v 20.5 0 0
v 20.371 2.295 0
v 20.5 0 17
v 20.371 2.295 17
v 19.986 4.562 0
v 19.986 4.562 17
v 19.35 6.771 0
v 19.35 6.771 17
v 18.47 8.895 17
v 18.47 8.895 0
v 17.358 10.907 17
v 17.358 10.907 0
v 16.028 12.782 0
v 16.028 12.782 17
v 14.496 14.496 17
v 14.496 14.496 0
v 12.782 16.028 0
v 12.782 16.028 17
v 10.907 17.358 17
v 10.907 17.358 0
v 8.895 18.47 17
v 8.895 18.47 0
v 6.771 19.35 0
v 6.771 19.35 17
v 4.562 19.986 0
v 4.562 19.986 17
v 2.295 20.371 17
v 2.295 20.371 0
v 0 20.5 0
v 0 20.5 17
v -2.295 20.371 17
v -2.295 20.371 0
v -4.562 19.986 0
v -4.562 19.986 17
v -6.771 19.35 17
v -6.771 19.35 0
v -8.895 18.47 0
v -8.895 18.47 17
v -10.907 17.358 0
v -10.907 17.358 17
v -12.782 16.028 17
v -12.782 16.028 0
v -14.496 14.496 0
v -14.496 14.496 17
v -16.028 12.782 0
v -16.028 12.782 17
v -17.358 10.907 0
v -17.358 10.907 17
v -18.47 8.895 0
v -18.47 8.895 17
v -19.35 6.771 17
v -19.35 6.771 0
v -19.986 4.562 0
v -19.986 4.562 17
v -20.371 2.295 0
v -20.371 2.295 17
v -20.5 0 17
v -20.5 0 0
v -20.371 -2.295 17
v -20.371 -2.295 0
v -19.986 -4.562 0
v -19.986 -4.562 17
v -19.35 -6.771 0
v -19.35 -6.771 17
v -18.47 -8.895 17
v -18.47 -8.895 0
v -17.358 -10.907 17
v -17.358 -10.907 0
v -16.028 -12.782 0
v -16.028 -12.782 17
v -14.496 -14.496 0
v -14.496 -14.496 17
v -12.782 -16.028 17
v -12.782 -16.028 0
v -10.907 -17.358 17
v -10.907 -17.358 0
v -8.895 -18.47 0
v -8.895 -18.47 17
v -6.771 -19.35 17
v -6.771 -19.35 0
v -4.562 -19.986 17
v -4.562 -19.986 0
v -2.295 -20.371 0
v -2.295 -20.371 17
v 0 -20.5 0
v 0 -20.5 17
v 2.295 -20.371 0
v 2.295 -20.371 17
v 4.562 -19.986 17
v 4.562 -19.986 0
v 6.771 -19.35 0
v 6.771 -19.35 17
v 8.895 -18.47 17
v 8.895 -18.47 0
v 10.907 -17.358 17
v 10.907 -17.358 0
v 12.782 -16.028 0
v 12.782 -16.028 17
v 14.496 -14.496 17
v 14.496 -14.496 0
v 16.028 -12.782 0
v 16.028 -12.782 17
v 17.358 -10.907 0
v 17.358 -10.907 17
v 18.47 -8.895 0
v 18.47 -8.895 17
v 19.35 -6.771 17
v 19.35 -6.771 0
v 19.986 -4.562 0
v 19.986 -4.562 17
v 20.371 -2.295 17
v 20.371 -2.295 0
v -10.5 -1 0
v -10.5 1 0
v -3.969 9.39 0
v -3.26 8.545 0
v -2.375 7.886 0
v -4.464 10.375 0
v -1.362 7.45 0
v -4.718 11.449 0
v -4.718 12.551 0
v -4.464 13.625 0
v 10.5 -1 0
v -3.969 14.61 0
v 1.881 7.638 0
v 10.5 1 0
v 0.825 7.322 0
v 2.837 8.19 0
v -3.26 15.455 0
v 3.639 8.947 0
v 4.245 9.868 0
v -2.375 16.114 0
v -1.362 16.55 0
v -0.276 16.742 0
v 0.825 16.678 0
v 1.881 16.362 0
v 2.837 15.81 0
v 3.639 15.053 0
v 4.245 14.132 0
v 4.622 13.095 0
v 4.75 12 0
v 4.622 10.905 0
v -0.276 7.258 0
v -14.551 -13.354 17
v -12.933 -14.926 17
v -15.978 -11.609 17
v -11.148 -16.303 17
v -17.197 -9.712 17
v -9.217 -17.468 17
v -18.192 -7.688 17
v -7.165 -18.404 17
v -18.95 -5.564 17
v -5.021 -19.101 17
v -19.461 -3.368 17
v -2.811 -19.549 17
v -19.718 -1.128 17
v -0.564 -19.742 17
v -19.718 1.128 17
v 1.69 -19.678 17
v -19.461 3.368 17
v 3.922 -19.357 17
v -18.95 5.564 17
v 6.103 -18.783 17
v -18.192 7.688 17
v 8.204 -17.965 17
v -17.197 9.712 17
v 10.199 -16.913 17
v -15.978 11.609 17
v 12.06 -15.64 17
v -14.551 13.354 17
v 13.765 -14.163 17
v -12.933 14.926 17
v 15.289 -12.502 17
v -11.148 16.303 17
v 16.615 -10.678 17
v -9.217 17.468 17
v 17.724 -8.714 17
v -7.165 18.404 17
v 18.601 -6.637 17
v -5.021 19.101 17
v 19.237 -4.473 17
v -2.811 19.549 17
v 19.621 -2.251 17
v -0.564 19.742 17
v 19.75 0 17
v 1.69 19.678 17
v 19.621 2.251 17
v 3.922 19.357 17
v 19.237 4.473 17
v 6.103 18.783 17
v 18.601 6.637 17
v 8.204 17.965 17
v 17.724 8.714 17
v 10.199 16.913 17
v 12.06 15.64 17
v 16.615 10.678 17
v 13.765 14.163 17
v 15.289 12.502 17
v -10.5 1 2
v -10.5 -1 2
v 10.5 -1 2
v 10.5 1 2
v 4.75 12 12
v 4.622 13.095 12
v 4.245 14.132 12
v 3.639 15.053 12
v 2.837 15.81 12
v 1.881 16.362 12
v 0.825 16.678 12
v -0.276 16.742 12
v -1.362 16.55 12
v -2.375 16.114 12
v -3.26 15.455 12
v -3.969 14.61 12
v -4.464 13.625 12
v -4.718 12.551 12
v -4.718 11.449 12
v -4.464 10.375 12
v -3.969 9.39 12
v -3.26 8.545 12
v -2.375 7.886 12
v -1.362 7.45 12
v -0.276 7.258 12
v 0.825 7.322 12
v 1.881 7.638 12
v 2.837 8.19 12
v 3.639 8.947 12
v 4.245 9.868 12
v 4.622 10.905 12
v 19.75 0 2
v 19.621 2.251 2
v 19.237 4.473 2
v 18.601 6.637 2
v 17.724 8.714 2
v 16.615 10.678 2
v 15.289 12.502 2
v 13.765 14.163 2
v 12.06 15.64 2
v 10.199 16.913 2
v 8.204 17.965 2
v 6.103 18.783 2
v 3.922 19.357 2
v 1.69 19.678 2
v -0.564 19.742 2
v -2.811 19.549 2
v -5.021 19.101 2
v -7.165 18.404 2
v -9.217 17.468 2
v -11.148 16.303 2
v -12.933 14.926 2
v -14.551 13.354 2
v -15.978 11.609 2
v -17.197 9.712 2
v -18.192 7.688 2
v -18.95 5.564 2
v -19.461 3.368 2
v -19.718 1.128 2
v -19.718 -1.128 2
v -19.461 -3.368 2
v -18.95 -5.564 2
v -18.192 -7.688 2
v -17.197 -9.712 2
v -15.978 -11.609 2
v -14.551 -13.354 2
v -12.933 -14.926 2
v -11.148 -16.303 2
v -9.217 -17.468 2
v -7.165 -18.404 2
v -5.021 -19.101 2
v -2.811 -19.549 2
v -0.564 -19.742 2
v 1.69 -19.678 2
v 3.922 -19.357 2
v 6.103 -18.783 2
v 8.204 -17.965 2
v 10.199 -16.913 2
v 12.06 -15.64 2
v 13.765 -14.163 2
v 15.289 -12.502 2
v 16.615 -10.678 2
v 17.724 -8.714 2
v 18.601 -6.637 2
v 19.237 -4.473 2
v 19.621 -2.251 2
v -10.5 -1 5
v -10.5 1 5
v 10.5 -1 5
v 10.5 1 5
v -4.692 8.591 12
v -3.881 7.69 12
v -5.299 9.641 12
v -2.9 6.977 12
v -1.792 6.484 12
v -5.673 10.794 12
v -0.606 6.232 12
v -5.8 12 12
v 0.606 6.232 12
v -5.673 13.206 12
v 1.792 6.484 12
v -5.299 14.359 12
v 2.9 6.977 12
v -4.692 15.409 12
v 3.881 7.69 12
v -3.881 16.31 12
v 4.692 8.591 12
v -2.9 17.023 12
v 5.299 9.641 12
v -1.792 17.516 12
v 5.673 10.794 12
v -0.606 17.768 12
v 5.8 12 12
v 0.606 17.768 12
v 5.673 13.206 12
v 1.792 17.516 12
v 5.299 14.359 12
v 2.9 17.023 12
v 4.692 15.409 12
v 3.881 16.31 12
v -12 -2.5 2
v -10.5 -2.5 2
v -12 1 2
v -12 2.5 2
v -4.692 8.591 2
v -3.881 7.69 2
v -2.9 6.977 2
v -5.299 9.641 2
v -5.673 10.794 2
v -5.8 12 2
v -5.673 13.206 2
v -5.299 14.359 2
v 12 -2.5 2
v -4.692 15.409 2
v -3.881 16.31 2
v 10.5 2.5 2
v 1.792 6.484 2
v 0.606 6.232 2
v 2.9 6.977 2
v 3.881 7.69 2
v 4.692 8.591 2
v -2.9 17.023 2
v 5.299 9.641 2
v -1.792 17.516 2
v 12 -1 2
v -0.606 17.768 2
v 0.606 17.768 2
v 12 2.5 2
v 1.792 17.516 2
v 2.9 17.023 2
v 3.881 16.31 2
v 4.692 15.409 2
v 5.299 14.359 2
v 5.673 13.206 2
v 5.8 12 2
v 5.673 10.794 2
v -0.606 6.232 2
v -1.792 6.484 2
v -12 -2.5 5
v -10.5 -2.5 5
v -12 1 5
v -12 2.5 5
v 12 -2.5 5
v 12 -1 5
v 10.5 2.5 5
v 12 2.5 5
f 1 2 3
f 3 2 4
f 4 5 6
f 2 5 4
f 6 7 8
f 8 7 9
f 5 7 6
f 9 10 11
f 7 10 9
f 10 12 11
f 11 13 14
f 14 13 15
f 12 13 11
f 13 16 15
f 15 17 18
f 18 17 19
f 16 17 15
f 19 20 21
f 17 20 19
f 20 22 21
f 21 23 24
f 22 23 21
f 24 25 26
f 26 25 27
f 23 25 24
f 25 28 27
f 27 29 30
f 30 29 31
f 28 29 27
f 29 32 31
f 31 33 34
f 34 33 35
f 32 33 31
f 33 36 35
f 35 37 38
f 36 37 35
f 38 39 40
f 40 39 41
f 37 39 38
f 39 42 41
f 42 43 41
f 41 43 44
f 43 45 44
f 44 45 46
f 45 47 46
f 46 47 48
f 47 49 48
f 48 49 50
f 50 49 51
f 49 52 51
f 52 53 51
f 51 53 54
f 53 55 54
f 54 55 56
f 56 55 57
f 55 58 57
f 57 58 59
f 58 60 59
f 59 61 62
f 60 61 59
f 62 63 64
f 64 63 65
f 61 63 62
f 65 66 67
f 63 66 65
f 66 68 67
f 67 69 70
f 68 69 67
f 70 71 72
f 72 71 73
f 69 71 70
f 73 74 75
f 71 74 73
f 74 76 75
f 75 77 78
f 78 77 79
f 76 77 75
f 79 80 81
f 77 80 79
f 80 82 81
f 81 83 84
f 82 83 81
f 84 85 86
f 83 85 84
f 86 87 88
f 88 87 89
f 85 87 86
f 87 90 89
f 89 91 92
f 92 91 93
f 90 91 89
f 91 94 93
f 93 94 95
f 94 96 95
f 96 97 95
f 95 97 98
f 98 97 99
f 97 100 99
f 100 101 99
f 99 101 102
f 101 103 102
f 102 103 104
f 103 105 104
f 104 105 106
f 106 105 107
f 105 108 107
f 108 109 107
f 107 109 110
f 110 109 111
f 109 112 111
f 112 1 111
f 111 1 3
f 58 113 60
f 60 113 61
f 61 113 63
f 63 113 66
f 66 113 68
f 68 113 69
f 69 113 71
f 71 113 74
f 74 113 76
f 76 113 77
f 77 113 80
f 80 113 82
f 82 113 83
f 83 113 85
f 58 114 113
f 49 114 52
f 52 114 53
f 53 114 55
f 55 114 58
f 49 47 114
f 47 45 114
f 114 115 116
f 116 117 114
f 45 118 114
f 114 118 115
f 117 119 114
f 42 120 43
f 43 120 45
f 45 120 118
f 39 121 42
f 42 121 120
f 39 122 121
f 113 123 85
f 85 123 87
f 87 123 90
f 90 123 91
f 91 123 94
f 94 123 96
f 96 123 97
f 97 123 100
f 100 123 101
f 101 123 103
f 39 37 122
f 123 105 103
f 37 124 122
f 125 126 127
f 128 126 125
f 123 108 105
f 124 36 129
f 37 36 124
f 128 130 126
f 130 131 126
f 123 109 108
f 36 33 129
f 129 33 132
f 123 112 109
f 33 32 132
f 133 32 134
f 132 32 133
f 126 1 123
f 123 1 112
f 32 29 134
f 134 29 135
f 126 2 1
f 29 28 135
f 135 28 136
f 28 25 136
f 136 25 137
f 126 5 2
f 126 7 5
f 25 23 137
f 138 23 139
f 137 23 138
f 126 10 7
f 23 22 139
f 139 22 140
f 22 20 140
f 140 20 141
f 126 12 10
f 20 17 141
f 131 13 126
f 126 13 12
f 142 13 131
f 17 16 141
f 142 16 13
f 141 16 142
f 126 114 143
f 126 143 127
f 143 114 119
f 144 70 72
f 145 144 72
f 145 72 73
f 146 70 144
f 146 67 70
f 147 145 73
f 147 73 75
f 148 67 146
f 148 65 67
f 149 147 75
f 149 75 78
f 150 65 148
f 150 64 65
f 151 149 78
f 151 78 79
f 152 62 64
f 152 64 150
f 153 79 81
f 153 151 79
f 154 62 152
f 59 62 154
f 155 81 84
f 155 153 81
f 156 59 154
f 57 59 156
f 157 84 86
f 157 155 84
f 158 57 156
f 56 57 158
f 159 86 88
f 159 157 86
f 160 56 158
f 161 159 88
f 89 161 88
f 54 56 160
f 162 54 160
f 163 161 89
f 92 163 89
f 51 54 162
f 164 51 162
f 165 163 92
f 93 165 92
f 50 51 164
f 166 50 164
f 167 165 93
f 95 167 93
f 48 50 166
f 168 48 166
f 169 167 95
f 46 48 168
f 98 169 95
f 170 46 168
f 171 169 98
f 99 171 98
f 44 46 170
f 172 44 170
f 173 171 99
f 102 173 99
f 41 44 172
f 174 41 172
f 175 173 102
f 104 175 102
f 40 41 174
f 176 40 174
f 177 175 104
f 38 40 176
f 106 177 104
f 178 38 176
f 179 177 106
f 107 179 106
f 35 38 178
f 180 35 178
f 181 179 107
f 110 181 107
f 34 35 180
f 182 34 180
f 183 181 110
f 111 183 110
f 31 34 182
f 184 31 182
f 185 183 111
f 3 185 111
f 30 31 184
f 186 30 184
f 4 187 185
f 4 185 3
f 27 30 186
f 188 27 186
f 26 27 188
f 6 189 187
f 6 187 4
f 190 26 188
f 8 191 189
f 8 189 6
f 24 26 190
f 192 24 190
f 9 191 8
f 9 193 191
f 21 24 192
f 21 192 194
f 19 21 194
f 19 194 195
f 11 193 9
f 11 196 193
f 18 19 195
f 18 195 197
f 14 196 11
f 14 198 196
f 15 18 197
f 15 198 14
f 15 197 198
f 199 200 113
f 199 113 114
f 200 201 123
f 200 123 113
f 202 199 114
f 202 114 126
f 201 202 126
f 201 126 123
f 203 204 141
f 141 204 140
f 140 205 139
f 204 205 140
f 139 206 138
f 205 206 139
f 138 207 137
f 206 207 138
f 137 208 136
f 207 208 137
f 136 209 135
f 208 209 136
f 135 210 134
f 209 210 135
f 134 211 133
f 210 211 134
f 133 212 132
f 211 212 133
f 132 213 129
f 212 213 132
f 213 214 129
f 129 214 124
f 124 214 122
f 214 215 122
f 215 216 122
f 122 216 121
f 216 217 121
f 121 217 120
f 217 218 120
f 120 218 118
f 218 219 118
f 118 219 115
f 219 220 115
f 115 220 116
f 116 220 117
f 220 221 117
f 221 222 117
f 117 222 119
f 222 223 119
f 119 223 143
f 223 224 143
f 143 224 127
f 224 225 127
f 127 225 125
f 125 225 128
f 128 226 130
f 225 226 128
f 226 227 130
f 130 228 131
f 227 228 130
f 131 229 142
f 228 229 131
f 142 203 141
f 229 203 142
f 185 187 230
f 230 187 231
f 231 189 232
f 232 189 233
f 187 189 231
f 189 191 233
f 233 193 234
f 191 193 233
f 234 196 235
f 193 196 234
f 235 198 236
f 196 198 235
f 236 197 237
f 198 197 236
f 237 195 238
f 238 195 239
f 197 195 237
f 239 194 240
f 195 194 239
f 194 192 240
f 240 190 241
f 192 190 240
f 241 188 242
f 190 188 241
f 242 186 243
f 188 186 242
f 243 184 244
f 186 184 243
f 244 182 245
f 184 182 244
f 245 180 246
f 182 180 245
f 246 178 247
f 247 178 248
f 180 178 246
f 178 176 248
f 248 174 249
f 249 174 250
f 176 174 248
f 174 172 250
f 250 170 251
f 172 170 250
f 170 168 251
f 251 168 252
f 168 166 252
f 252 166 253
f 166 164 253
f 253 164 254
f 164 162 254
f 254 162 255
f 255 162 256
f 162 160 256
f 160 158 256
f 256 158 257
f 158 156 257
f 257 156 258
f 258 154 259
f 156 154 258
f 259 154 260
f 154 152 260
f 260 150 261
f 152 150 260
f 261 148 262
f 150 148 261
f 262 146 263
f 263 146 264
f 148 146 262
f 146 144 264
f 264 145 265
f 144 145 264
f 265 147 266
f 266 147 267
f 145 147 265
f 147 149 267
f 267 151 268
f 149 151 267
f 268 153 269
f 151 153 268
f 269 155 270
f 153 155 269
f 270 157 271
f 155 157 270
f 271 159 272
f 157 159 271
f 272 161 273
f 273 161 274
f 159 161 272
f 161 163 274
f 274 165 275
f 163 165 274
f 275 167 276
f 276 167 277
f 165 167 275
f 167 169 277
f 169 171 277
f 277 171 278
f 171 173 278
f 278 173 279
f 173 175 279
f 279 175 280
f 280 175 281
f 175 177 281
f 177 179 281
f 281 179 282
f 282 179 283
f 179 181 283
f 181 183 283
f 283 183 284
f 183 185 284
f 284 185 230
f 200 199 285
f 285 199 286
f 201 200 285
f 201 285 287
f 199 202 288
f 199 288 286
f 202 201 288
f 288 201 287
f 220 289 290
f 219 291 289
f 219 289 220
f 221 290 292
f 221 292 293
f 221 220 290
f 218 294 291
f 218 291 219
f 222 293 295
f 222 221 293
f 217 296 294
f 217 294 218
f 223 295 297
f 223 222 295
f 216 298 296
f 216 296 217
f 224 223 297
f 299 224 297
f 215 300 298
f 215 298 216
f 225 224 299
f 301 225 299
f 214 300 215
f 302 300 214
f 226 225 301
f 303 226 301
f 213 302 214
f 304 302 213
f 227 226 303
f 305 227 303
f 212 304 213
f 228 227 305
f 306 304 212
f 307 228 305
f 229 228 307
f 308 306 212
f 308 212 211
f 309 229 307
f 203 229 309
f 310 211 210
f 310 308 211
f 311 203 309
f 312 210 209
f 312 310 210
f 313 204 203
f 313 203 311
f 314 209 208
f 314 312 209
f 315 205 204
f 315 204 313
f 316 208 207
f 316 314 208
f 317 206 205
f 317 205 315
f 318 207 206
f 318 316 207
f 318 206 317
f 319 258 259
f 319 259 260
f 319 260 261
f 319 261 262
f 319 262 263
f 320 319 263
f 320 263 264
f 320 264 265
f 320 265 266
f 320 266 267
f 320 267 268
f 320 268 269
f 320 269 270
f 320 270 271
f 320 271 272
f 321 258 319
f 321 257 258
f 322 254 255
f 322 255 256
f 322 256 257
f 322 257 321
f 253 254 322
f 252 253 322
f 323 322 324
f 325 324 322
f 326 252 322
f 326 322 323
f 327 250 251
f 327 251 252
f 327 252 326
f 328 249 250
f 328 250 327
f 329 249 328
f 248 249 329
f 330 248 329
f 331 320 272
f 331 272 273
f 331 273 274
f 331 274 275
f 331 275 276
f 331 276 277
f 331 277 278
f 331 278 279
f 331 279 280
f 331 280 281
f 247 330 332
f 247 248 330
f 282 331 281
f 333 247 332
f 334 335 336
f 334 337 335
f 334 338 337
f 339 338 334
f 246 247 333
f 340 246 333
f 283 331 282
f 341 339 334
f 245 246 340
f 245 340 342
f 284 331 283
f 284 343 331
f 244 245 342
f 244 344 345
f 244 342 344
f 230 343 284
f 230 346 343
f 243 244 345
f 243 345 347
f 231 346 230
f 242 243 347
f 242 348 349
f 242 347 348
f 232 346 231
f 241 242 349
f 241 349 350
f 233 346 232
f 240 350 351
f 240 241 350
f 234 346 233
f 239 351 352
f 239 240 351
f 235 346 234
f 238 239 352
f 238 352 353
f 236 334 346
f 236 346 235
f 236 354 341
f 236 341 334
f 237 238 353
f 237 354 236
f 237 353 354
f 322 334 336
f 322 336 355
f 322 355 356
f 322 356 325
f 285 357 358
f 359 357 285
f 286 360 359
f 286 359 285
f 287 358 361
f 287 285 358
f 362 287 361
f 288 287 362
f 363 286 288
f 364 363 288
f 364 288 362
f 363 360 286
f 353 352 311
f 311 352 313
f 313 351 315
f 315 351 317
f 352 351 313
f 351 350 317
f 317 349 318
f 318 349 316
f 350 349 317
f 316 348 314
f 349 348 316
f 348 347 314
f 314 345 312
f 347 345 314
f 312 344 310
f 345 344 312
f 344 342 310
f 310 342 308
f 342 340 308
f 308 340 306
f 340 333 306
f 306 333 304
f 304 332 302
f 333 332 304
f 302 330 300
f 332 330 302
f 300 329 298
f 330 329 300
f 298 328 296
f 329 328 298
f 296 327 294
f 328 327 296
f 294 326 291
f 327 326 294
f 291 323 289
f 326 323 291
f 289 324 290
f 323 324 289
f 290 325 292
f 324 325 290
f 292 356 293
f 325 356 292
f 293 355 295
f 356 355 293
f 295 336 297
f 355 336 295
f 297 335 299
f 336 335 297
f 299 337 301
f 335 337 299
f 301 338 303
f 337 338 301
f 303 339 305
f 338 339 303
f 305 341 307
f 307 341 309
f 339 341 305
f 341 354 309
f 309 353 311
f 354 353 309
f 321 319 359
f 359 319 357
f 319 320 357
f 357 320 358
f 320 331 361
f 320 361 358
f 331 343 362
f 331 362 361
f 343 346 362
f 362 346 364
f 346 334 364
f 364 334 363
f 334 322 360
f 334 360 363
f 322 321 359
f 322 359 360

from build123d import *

# Parameters (mm, degrees)
SKETCH_R        = 20.5
PAD_DEPTH       = 17
SKETCH001_R     = 19.75
POCKET_DEPTH    = 15
SKETCH002_W     = 21
SKETCH002_H     = 2
POCKET001_DEPTH = 5
SKETCH003_R     = 5.8
PAD001_DEPTH    = 10
SKETCH004_R     = 4.75
POCKET002_DEPTH = 13
SKETCH005_W     = 22.5
SKETCH005_H     = 1.5
SKETCH005_W_2   = 1.5
SKETCH005_H_2   = 3.5
PAD002_DEPTH    = 3


with BuildPart() as part:
    # Sketch → Pad (new body)
    with BuildSketch(Plane.XY):
        Circle(SKETCH_R)
    extrude(amount=PAD_DEPTH)

    # Sketch001 (on Face3 of Pad) → Pocket (cut)
    with BuildSketch(Plane.XY.offset(17)):
        Circle(SKETCH001_R)
    extrude(amount=-POCKET_DEPTH, mode=Mode.SUBTRACT)

    # Sketch002 (on Face5 of Pocket) → Pocket001 (cut)
    with BuildSketch(Plane.XY.offset(2)):
        Rectangle(SKETCH002_W, SKETCH002_H)
    extrude(amount=-POCKET001_DEPTH, mode=Mode.SUBTRACT)

    # Sketch003 (on Face9 of Pocket001) → Pad001 (join)
    with BuildSketch(Plane.XY.offset(2)):
        with Locations((0, 12)):
            Circle(SKETCH003_R)
    extrude(amount=PAD001_DEPTH)

    # Sketch004 (on Face11 of Pad001) → Pocket002 (cut)
    with BuildSketch(Plane.XY.offset(12)):
        with Locations((0, 12)):
            Circle(SKETCH004_R)
    extrude(amount=-POCKET002_DEPTH, mode=Mode.SUBTRACT)

    # Sketch005 (on Face10 of Pocket002) → Pad002 (join)
    with BuildSketch(Plane.XY.offset(2)):
        with Locations((-0.75, 1.75)):
            Rectangle(SKETCH005_W, SKETCH005_H)
        with Locations((11.25, 0.75)):
            Rectangle(SKETCH005_W_2, SKETCH005_H_2)
        with Locations((0.75, -1.75)):
            Rectangle(SKETCH005_W, SKETCH005_H)
        with Locations((-11.25, -0.75)):
            Rectangle(SKETCH005_W_2, SKETCH005_H_2)
    extrude(amount=PAD002_DEPTH)


solid = part.part
